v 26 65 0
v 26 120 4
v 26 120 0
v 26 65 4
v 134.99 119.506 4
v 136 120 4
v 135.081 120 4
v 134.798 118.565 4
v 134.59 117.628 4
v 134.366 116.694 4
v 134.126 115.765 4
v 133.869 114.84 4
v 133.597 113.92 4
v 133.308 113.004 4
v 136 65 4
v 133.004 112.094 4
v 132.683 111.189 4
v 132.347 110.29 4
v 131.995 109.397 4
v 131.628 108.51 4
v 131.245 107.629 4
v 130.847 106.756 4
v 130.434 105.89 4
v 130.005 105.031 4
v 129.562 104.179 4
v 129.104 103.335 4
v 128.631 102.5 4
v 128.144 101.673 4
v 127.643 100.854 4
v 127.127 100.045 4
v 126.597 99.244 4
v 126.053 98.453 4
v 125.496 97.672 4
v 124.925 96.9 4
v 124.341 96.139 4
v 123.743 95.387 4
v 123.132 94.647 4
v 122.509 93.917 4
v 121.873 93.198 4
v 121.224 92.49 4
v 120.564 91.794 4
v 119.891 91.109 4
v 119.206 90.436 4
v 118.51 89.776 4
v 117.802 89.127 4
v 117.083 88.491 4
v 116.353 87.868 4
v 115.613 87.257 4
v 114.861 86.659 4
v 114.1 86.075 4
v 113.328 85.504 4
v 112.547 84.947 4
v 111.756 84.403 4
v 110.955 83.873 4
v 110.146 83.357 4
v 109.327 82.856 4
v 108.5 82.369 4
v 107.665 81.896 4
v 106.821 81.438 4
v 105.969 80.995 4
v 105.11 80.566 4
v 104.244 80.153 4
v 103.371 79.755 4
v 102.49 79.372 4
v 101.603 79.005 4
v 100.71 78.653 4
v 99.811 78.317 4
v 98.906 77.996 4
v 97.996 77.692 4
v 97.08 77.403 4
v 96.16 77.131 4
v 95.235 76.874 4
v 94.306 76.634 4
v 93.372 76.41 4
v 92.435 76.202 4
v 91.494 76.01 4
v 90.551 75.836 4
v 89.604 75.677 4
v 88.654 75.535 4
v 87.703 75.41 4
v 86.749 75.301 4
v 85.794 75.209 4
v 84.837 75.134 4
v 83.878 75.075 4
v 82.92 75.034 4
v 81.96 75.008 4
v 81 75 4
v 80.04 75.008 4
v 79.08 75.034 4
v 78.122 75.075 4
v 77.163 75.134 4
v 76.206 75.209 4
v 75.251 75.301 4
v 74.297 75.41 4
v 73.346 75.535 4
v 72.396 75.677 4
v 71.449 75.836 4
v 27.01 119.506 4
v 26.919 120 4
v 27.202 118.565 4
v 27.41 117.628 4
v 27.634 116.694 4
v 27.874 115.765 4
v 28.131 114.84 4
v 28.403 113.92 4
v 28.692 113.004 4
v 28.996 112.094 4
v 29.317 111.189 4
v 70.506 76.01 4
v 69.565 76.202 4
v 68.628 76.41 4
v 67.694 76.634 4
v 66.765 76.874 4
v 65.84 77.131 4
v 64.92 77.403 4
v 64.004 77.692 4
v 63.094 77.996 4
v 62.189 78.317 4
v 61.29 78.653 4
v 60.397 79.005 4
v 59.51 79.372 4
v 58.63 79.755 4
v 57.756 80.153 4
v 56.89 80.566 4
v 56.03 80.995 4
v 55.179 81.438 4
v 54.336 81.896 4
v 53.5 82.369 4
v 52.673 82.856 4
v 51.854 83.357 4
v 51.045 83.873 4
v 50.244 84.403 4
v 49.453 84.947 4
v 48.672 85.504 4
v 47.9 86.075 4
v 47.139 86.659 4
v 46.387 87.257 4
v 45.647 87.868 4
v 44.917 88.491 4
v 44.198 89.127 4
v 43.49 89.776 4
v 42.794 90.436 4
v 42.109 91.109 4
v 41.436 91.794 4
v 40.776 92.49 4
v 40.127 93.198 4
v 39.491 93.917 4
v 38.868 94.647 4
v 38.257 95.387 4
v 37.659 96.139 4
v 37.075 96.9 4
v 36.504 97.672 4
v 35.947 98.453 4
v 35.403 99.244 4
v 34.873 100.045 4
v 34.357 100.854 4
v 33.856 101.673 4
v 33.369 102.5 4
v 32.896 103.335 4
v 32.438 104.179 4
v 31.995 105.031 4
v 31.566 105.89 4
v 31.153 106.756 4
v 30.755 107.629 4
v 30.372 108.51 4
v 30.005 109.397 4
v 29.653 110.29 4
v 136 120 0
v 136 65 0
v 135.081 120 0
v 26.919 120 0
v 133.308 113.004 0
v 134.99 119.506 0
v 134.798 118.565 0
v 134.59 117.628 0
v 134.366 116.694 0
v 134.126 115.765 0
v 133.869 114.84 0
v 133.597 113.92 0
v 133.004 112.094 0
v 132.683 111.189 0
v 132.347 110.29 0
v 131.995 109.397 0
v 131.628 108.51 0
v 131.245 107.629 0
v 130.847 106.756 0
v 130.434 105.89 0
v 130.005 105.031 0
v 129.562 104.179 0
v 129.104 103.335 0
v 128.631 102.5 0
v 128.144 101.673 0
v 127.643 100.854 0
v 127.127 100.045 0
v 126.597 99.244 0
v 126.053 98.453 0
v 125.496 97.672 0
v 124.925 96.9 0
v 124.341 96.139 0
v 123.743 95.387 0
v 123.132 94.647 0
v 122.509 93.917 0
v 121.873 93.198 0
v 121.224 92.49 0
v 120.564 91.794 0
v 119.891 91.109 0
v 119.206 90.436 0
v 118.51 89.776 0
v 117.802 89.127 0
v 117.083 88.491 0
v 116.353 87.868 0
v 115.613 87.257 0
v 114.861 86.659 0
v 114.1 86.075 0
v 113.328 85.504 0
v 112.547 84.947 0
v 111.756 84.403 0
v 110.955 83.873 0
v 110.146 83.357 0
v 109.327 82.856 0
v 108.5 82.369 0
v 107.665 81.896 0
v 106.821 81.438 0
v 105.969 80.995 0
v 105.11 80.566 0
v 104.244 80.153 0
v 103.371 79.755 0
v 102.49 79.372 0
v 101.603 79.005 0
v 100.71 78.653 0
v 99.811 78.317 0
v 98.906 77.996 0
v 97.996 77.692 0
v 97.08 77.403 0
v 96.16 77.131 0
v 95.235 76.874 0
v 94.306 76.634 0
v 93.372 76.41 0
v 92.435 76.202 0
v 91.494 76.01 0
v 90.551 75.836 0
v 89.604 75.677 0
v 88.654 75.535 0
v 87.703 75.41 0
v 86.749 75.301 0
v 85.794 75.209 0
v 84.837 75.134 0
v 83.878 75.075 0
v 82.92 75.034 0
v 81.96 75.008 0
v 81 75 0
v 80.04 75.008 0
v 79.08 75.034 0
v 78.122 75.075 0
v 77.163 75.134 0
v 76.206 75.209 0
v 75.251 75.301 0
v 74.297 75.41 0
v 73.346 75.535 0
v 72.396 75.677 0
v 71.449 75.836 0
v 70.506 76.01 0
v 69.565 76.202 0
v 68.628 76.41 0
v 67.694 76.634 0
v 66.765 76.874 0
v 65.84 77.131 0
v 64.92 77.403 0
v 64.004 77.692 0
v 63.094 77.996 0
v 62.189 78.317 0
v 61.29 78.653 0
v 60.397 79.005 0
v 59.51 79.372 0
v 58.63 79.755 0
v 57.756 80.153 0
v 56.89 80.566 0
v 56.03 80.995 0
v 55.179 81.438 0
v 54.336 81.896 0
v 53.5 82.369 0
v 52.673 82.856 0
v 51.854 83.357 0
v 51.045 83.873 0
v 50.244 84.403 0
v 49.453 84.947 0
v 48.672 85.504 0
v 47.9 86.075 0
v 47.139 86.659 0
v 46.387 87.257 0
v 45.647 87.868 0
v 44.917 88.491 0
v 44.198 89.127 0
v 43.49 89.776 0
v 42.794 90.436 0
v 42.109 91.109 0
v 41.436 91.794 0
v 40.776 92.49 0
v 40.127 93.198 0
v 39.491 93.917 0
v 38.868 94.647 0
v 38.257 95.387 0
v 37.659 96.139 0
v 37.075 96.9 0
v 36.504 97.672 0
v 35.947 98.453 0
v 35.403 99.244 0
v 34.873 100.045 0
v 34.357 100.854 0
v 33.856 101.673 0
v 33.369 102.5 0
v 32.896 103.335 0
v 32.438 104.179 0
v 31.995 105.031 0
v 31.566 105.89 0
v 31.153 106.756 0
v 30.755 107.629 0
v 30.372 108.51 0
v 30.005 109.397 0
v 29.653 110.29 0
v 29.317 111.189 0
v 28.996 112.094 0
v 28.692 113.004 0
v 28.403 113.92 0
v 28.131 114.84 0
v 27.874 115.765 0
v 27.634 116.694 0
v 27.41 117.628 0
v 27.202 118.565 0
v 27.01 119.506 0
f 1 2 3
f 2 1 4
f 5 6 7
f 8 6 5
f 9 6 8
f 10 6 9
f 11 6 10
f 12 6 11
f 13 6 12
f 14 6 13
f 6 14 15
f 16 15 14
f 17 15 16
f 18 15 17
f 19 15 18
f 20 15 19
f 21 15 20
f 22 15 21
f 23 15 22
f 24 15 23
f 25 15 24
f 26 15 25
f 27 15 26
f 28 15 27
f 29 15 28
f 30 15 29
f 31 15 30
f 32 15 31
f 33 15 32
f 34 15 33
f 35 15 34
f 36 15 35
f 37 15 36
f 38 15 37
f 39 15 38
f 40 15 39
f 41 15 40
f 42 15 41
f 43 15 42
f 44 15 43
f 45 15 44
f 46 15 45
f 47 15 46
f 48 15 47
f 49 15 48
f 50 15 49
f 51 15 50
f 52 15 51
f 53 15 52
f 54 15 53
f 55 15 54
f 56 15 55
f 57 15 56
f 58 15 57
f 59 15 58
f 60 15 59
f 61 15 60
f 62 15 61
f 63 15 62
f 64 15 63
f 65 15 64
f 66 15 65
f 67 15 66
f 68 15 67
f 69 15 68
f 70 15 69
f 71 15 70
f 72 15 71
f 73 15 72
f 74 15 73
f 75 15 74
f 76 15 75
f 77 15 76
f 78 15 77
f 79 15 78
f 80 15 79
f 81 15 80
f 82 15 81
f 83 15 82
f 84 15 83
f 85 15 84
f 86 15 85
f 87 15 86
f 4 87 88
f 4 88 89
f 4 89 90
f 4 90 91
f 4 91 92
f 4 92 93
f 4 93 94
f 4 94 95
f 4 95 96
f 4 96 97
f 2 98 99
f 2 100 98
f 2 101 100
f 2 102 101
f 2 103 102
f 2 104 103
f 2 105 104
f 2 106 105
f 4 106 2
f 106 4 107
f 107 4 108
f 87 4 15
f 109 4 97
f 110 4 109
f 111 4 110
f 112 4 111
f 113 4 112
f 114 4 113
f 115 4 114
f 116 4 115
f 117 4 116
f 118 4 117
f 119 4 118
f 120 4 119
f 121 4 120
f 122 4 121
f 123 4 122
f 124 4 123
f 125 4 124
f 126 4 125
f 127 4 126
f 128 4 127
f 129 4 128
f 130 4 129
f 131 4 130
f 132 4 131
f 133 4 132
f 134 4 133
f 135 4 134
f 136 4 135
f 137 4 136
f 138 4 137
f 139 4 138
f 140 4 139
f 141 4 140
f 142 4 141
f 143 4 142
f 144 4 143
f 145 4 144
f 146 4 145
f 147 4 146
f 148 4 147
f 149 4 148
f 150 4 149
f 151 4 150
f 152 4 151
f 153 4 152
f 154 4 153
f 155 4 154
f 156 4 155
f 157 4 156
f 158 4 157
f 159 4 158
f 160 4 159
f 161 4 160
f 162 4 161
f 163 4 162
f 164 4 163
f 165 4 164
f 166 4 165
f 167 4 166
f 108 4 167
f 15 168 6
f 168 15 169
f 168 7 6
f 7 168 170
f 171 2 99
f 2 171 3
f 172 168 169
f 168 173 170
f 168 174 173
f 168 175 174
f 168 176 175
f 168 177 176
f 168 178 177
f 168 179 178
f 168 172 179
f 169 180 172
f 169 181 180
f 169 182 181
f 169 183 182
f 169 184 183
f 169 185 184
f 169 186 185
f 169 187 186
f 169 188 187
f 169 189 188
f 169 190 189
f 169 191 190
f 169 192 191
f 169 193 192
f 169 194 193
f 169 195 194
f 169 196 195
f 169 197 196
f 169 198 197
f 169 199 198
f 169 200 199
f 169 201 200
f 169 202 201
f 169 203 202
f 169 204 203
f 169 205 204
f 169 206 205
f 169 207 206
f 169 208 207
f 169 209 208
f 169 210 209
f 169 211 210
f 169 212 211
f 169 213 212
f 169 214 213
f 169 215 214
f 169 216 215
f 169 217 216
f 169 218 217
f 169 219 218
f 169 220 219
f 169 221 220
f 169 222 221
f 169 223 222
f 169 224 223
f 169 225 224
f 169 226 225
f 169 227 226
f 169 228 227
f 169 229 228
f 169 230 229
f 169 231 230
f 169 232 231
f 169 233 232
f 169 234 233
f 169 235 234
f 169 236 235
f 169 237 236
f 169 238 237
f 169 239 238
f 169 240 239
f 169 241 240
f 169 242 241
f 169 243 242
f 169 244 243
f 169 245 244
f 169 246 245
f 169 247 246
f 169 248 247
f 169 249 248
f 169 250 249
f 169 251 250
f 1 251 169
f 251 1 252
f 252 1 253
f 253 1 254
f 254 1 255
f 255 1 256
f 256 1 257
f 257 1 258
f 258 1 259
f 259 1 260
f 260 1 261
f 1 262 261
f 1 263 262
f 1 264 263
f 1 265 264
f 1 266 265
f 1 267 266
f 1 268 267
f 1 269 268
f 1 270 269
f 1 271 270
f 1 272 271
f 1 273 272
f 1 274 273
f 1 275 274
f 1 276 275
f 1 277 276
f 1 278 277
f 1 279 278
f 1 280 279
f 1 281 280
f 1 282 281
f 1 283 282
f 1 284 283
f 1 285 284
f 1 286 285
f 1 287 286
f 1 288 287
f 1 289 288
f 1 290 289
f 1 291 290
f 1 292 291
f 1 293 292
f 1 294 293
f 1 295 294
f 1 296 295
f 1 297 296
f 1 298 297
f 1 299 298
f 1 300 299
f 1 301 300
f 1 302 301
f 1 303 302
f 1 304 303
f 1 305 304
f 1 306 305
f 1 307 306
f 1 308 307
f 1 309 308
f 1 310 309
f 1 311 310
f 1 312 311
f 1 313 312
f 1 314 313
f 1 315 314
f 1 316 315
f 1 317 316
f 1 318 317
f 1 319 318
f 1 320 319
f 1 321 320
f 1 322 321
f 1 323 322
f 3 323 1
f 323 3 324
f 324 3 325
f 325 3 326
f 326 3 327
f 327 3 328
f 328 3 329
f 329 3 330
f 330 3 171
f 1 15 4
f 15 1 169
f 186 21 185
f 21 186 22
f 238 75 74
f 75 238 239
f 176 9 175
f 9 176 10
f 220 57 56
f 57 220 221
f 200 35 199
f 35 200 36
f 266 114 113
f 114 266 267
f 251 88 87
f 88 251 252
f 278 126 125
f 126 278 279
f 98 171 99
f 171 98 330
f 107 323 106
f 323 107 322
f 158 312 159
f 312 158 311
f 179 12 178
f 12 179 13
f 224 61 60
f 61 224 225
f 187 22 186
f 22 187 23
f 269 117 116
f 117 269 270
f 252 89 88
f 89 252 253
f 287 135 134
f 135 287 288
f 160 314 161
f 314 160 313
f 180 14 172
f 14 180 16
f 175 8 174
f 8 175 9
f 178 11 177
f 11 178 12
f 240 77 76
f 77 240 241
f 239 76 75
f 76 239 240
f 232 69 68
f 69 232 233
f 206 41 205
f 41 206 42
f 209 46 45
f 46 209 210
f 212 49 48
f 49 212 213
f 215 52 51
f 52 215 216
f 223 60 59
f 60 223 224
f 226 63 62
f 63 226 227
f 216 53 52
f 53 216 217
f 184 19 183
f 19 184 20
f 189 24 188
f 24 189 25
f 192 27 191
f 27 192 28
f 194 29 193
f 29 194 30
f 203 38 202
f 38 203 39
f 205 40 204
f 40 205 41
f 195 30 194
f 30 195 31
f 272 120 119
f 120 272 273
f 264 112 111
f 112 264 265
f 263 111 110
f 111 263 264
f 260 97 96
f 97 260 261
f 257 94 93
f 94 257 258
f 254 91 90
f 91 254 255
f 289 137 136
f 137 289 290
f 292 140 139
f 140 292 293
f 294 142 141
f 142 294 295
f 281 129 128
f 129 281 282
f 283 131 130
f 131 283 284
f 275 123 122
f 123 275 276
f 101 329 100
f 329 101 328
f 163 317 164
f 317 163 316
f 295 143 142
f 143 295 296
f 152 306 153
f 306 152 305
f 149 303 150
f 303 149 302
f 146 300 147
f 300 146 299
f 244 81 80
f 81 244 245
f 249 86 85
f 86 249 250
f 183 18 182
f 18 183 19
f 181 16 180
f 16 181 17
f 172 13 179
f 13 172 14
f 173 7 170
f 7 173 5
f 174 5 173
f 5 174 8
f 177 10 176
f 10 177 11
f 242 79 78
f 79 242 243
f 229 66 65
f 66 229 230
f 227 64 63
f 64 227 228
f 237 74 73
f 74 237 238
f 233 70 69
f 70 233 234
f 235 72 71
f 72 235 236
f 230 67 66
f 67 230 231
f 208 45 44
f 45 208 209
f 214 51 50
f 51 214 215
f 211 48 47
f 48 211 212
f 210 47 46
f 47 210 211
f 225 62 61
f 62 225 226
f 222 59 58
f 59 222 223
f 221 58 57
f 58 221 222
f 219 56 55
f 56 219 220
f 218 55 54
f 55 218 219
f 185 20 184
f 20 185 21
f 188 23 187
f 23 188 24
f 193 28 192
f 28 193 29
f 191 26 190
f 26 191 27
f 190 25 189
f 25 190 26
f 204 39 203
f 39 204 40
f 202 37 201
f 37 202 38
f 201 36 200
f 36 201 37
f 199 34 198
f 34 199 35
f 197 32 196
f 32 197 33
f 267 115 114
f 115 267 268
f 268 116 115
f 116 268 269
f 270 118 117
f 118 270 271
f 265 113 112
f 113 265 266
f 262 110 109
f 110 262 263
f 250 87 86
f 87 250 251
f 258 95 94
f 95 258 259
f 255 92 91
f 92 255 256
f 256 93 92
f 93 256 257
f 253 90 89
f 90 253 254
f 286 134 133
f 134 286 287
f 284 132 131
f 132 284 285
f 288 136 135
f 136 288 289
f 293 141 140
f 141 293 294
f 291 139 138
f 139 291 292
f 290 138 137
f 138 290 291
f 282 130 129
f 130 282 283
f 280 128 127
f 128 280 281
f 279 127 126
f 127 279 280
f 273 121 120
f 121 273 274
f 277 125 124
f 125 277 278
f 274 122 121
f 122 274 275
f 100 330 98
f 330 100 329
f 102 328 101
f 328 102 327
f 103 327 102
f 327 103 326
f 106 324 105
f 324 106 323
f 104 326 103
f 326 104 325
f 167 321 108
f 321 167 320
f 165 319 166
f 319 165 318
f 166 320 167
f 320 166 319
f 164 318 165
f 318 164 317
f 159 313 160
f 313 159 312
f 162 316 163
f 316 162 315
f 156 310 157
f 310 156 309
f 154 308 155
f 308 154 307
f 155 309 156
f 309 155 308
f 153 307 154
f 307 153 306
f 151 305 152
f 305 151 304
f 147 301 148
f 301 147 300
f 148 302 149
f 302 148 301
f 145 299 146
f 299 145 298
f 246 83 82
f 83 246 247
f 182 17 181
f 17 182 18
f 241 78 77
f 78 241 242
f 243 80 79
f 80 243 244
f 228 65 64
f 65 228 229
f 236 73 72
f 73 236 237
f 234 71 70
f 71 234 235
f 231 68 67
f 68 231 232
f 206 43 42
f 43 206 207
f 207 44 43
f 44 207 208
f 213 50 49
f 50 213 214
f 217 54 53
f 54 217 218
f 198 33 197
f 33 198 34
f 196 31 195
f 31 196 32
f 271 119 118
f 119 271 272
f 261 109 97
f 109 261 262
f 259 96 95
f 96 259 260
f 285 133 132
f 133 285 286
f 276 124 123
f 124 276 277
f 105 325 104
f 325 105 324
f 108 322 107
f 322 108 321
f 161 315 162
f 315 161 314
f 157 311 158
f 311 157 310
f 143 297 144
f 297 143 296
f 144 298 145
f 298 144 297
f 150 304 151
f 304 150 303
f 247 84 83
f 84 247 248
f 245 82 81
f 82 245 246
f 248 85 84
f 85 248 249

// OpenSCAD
difference() {
translate([26,65,0])cube([110, 55, 4]);
    translate([81,130,0])cylinder(d=110, h= 40, $fn=360);
}
